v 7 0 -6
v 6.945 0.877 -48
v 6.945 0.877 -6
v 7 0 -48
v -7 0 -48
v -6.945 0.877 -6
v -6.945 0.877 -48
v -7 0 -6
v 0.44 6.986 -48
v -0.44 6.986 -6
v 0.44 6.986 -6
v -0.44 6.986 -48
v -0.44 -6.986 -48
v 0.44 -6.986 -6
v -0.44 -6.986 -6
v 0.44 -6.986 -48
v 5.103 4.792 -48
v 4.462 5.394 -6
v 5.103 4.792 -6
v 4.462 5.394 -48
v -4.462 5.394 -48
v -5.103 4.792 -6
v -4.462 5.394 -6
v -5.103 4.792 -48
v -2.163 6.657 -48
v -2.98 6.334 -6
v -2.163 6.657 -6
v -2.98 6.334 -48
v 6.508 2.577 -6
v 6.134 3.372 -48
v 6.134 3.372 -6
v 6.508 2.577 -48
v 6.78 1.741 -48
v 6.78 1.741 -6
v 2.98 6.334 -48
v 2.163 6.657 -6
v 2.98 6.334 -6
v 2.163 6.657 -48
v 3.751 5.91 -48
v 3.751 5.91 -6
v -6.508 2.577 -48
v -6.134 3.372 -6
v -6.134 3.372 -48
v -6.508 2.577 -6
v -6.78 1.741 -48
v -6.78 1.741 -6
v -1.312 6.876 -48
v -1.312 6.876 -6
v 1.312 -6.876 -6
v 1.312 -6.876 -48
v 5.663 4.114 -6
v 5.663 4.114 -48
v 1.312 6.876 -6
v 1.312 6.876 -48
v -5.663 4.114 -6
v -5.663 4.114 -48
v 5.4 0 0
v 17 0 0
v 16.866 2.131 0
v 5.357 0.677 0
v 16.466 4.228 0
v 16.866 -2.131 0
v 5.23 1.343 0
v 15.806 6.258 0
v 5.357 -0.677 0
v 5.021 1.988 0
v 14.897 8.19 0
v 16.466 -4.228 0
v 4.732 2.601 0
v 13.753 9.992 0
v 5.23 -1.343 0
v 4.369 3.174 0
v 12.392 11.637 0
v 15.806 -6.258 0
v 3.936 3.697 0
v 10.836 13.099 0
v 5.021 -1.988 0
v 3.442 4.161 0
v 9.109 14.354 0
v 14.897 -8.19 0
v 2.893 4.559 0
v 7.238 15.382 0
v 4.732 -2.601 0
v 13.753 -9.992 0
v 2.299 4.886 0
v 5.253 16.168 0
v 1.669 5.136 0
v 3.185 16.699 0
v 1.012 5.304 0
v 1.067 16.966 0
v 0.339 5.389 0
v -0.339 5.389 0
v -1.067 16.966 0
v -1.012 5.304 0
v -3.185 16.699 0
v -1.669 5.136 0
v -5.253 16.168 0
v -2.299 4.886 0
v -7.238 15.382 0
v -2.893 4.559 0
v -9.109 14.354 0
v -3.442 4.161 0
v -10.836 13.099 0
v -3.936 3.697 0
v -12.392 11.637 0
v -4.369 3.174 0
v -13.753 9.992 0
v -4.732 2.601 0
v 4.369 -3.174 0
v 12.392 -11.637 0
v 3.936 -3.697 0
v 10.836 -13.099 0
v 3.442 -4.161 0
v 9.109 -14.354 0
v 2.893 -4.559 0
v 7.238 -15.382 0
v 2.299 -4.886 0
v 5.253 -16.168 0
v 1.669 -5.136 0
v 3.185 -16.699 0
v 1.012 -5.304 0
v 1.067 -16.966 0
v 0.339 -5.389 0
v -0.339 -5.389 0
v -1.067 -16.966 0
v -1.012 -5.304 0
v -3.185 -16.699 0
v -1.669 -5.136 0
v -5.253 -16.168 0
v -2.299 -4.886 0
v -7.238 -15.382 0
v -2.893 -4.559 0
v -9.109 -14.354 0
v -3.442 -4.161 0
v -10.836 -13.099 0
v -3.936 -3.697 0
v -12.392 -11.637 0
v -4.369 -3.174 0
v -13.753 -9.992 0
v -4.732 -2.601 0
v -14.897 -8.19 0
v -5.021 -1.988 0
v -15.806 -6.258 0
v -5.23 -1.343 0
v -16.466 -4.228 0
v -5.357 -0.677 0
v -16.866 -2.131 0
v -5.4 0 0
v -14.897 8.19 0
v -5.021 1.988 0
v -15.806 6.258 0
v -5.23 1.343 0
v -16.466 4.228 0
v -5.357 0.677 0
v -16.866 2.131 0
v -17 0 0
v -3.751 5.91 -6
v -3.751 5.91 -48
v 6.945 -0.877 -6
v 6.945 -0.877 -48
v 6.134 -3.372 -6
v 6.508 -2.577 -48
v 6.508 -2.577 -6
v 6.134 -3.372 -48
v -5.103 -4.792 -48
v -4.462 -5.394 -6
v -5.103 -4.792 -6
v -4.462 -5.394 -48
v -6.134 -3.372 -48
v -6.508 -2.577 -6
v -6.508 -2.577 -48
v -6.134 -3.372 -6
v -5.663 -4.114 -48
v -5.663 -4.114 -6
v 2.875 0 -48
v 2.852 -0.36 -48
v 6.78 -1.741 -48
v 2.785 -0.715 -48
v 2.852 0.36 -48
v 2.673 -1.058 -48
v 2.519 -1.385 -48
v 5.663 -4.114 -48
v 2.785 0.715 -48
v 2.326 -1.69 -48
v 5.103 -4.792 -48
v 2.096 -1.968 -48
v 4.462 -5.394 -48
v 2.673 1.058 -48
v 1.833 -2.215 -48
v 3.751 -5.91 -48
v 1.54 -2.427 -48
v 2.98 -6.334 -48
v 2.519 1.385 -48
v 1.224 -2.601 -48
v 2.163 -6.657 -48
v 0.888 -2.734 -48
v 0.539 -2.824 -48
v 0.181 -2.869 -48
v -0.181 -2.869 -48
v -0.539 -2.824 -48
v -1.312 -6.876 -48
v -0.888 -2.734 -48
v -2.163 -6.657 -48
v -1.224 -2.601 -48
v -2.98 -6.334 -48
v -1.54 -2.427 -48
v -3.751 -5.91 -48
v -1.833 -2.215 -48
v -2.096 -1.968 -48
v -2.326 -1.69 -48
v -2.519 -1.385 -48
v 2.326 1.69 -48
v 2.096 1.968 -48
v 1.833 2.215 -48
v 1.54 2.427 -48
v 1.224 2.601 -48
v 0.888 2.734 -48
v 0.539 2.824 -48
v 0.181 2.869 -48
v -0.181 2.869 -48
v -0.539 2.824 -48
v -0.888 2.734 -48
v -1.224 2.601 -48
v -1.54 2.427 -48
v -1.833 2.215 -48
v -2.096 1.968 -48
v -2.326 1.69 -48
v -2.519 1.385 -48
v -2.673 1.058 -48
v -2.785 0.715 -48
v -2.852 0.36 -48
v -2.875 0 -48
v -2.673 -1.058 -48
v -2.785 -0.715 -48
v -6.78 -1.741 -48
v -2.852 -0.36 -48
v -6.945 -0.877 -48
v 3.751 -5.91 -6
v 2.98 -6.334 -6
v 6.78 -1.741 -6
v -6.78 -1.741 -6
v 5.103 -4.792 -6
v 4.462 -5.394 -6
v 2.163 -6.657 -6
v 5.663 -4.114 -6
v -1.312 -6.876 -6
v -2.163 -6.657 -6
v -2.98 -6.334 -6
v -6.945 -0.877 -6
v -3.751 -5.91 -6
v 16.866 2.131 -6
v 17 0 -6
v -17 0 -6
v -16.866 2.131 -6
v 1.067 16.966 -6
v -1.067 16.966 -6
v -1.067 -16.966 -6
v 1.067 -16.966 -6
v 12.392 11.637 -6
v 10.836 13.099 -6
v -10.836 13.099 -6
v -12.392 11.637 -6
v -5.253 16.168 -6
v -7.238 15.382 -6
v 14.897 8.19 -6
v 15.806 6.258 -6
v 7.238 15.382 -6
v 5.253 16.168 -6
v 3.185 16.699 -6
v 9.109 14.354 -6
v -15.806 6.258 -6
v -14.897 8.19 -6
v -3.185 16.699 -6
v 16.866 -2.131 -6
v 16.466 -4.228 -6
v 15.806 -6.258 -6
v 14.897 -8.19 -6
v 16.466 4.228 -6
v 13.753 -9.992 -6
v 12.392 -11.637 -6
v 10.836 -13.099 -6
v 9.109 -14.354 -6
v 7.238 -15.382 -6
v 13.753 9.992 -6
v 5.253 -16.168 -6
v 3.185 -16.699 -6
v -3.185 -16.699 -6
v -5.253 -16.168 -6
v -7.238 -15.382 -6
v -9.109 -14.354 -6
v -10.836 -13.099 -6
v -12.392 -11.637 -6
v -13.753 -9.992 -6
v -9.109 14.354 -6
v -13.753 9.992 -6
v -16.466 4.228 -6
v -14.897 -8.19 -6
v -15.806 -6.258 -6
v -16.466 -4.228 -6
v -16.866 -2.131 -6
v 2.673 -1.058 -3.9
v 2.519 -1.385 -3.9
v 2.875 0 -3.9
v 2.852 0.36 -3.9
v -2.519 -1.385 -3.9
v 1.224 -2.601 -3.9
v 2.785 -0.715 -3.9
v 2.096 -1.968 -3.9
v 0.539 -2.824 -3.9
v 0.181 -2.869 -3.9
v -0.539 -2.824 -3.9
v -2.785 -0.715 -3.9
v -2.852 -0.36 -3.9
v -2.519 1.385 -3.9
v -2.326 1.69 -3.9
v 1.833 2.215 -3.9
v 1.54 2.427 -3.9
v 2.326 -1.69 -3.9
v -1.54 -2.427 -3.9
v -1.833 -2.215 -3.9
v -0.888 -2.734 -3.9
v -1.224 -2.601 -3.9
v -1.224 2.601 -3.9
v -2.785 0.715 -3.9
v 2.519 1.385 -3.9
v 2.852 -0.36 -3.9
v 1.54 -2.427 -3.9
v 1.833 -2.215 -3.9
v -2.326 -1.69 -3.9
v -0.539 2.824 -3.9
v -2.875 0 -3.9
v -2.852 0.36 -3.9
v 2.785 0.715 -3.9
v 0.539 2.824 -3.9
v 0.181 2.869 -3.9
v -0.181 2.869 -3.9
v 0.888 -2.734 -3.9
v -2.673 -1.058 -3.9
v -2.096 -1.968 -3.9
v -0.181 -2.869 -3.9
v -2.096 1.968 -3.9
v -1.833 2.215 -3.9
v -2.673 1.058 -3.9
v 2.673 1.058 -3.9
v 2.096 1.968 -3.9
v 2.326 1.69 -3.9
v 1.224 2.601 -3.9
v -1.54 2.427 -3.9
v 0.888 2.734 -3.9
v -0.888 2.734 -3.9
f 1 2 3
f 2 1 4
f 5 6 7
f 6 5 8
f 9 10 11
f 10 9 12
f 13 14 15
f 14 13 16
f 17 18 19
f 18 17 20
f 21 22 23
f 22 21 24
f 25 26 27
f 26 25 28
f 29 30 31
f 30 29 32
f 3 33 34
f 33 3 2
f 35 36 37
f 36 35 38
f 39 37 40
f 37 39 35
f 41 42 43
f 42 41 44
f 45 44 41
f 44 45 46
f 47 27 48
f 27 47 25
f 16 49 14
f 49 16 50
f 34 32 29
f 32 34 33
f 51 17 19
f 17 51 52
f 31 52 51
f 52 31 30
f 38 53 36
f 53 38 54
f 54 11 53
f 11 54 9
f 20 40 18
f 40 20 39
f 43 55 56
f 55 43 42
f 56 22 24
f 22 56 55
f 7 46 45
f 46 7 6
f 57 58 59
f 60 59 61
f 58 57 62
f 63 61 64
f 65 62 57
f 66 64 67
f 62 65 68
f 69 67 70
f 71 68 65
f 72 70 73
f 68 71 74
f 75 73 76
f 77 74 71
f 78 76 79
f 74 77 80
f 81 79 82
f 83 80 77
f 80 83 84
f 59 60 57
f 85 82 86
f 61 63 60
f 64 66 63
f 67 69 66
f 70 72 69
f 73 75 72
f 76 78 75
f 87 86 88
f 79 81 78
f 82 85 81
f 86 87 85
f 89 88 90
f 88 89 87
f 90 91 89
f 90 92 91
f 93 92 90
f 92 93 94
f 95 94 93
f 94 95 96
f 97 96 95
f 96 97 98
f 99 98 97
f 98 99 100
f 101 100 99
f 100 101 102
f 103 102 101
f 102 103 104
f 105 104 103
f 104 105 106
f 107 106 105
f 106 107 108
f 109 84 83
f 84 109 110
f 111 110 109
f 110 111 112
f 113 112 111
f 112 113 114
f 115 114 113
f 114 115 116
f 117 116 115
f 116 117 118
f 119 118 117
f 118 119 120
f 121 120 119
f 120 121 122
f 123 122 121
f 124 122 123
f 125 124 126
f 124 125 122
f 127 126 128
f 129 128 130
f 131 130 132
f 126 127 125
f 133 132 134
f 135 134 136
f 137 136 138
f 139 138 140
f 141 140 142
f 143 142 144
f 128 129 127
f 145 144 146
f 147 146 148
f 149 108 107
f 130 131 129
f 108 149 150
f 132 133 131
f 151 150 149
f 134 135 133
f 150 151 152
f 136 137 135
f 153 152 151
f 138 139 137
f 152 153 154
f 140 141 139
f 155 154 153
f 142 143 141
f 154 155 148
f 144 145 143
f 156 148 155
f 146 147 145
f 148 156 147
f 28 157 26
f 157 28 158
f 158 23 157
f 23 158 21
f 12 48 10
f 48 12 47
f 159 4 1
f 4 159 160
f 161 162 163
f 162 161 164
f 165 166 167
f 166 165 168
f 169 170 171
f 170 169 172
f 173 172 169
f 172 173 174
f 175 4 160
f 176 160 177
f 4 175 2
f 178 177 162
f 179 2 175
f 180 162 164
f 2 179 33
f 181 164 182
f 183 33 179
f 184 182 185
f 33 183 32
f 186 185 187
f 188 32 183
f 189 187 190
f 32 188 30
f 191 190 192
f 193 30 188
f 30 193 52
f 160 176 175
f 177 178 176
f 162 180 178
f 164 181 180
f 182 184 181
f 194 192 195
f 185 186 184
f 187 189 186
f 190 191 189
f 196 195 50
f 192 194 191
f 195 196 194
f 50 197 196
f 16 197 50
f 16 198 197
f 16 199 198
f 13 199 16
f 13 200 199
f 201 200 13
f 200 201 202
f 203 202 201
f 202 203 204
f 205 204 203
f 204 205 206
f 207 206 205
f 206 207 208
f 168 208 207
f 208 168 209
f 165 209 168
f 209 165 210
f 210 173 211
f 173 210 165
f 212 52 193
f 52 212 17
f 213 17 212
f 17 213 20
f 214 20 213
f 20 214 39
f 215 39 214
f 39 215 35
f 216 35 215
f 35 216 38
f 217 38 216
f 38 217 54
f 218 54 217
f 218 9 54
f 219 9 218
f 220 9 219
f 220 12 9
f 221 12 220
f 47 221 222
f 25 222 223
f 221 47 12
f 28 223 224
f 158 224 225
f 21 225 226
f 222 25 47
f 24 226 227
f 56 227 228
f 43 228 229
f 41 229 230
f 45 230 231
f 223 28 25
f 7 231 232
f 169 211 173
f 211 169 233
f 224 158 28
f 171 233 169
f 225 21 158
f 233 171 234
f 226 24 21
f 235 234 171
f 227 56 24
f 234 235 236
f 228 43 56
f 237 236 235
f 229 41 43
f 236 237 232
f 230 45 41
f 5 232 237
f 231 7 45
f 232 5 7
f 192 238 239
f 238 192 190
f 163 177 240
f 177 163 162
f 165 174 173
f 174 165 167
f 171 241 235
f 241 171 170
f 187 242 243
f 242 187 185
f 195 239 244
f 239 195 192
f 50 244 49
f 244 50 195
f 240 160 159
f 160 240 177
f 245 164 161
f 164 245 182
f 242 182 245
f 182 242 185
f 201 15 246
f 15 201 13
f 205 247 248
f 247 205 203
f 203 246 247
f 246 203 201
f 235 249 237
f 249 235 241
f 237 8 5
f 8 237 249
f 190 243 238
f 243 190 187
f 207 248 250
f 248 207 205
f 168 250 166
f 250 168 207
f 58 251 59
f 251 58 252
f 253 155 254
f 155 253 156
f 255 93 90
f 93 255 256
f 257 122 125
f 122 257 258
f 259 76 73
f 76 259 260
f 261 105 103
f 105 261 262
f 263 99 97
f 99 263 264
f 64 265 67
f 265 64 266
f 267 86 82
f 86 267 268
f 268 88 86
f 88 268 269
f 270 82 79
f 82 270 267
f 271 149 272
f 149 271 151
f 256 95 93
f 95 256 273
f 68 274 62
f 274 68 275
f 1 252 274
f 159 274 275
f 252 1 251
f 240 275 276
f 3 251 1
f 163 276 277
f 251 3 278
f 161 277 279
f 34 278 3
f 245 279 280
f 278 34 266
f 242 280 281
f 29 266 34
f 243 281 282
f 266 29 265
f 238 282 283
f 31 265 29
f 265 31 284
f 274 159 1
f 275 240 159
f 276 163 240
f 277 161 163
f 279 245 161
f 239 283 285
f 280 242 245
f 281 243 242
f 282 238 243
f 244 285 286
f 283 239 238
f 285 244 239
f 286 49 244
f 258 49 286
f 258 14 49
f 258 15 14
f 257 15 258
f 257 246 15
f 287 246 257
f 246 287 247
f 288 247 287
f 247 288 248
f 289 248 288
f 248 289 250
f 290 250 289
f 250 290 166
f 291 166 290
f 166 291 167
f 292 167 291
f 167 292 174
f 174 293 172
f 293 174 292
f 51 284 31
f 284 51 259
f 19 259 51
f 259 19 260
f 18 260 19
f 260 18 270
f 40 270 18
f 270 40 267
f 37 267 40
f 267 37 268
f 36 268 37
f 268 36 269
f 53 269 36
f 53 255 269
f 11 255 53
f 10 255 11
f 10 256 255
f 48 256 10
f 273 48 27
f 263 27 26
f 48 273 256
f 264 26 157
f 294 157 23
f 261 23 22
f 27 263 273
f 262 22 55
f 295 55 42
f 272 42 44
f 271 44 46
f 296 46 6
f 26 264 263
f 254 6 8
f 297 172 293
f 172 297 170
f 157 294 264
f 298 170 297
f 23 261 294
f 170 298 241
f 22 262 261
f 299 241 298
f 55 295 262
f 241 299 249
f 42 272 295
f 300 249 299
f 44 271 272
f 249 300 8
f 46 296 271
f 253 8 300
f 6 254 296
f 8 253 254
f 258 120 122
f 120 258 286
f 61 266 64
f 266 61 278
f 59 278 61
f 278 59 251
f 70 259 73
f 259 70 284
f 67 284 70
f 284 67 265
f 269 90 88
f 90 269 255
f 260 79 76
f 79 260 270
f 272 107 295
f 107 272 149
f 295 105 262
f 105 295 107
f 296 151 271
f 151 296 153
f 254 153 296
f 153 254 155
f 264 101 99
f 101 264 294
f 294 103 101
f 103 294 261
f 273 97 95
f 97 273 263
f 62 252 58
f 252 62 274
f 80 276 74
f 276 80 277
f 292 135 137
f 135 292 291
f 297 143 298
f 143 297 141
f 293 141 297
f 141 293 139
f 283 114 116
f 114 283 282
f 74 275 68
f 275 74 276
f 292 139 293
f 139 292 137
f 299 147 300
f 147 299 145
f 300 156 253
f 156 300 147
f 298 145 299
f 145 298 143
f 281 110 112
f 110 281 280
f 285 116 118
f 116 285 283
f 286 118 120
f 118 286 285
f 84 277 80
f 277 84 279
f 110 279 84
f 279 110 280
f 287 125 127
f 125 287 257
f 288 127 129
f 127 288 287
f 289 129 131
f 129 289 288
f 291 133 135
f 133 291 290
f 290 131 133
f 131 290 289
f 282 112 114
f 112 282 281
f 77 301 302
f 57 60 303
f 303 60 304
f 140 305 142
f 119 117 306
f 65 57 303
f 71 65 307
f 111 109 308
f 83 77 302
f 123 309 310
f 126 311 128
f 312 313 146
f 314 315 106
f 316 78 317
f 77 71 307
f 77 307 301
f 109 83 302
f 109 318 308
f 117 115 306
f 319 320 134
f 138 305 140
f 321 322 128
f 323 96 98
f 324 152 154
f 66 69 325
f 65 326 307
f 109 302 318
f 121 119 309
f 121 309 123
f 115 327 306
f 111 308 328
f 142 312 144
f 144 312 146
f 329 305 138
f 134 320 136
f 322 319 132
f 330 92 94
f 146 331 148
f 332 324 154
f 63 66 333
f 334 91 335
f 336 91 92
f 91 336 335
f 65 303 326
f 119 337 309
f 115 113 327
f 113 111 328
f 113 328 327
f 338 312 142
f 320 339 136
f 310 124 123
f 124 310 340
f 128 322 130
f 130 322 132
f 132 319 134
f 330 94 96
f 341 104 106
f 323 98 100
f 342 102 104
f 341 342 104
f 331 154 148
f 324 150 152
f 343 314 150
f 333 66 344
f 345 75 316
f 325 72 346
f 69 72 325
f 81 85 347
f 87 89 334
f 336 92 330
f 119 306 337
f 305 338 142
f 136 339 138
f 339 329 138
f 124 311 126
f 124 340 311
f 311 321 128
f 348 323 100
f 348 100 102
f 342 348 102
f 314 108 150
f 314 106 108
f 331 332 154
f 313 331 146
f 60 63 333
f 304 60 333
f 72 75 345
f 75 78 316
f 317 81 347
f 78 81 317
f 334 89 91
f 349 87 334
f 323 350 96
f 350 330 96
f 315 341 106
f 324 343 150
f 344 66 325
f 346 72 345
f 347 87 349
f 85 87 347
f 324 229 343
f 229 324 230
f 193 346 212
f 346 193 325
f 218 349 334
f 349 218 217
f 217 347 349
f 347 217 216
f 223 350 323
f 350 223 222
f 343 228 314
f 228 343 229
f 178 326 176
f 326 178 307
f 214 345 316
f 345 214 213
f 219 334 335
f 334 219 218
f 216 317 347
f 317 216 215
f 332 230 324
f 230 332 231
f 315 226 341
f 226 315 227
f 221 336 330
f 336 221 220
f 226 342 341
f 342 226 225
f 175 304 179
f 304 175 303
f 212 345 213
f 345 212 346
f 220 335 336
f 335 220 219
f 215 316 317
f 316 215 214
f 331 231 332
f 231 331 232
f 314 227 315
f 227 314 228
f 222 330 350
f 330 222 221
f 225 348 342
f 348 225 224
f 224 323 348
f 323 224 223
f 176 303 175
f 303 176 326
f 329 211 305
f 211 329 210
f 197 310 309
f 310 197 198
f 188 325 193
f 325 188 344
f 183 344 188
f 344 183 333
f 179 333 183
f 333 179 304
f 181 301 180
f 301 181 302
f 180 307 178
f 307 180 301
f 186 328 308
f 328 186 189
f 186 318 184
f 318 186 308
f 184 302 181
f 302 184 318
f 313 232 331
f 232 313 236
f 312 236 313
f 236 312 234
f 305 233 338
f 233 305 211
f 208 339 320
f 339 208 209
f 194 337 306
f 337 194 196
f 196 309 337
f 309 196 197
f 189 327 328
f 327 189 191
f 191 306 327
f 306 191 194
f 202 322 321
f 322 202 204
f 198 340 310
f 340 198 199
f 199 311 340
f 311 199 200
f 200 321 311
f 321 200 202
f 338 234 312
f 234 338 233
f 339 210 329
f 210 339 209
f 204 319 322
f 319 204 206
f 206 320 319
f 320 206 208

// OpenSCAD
$fn = 50;


difference() {
	union() {
		translate(v = [0, 0, -48.0000000000]) {
			cylinder(h = 48, r = 7.0000000000);
		}
		translate(v = [0, 0, -6.0000000000]) {
			cylinder(h = 6, r = 17.0000000000);
		}
	}
	union() {
		translate(v = [0, 0, 0]) {
			rotate(a = [0, 0, 0]) {
				difference() {
					union() {
						#translate(v = [0, 0, -48.0000000000]) {
							cylinder(h = 48, r = 2.6000000000);
						}
						#translate(v = [0, 0, -3.9000000000]) {
							cylinder(h = 3.9000000000, r1 = 2.8750000000, r2 = 5.4000000000);
						}
						#translate(v = [0, 0, -48.0000000000]) {
							cylinder(h = 48, r = 2.8750000000);
						}
						#translate(v = [0, 0, -48.0000000000]) {
							cylinder(h = 48, r = 2.6000000000);
						}
					}
					union();
				}
			}
		}
	}
}
